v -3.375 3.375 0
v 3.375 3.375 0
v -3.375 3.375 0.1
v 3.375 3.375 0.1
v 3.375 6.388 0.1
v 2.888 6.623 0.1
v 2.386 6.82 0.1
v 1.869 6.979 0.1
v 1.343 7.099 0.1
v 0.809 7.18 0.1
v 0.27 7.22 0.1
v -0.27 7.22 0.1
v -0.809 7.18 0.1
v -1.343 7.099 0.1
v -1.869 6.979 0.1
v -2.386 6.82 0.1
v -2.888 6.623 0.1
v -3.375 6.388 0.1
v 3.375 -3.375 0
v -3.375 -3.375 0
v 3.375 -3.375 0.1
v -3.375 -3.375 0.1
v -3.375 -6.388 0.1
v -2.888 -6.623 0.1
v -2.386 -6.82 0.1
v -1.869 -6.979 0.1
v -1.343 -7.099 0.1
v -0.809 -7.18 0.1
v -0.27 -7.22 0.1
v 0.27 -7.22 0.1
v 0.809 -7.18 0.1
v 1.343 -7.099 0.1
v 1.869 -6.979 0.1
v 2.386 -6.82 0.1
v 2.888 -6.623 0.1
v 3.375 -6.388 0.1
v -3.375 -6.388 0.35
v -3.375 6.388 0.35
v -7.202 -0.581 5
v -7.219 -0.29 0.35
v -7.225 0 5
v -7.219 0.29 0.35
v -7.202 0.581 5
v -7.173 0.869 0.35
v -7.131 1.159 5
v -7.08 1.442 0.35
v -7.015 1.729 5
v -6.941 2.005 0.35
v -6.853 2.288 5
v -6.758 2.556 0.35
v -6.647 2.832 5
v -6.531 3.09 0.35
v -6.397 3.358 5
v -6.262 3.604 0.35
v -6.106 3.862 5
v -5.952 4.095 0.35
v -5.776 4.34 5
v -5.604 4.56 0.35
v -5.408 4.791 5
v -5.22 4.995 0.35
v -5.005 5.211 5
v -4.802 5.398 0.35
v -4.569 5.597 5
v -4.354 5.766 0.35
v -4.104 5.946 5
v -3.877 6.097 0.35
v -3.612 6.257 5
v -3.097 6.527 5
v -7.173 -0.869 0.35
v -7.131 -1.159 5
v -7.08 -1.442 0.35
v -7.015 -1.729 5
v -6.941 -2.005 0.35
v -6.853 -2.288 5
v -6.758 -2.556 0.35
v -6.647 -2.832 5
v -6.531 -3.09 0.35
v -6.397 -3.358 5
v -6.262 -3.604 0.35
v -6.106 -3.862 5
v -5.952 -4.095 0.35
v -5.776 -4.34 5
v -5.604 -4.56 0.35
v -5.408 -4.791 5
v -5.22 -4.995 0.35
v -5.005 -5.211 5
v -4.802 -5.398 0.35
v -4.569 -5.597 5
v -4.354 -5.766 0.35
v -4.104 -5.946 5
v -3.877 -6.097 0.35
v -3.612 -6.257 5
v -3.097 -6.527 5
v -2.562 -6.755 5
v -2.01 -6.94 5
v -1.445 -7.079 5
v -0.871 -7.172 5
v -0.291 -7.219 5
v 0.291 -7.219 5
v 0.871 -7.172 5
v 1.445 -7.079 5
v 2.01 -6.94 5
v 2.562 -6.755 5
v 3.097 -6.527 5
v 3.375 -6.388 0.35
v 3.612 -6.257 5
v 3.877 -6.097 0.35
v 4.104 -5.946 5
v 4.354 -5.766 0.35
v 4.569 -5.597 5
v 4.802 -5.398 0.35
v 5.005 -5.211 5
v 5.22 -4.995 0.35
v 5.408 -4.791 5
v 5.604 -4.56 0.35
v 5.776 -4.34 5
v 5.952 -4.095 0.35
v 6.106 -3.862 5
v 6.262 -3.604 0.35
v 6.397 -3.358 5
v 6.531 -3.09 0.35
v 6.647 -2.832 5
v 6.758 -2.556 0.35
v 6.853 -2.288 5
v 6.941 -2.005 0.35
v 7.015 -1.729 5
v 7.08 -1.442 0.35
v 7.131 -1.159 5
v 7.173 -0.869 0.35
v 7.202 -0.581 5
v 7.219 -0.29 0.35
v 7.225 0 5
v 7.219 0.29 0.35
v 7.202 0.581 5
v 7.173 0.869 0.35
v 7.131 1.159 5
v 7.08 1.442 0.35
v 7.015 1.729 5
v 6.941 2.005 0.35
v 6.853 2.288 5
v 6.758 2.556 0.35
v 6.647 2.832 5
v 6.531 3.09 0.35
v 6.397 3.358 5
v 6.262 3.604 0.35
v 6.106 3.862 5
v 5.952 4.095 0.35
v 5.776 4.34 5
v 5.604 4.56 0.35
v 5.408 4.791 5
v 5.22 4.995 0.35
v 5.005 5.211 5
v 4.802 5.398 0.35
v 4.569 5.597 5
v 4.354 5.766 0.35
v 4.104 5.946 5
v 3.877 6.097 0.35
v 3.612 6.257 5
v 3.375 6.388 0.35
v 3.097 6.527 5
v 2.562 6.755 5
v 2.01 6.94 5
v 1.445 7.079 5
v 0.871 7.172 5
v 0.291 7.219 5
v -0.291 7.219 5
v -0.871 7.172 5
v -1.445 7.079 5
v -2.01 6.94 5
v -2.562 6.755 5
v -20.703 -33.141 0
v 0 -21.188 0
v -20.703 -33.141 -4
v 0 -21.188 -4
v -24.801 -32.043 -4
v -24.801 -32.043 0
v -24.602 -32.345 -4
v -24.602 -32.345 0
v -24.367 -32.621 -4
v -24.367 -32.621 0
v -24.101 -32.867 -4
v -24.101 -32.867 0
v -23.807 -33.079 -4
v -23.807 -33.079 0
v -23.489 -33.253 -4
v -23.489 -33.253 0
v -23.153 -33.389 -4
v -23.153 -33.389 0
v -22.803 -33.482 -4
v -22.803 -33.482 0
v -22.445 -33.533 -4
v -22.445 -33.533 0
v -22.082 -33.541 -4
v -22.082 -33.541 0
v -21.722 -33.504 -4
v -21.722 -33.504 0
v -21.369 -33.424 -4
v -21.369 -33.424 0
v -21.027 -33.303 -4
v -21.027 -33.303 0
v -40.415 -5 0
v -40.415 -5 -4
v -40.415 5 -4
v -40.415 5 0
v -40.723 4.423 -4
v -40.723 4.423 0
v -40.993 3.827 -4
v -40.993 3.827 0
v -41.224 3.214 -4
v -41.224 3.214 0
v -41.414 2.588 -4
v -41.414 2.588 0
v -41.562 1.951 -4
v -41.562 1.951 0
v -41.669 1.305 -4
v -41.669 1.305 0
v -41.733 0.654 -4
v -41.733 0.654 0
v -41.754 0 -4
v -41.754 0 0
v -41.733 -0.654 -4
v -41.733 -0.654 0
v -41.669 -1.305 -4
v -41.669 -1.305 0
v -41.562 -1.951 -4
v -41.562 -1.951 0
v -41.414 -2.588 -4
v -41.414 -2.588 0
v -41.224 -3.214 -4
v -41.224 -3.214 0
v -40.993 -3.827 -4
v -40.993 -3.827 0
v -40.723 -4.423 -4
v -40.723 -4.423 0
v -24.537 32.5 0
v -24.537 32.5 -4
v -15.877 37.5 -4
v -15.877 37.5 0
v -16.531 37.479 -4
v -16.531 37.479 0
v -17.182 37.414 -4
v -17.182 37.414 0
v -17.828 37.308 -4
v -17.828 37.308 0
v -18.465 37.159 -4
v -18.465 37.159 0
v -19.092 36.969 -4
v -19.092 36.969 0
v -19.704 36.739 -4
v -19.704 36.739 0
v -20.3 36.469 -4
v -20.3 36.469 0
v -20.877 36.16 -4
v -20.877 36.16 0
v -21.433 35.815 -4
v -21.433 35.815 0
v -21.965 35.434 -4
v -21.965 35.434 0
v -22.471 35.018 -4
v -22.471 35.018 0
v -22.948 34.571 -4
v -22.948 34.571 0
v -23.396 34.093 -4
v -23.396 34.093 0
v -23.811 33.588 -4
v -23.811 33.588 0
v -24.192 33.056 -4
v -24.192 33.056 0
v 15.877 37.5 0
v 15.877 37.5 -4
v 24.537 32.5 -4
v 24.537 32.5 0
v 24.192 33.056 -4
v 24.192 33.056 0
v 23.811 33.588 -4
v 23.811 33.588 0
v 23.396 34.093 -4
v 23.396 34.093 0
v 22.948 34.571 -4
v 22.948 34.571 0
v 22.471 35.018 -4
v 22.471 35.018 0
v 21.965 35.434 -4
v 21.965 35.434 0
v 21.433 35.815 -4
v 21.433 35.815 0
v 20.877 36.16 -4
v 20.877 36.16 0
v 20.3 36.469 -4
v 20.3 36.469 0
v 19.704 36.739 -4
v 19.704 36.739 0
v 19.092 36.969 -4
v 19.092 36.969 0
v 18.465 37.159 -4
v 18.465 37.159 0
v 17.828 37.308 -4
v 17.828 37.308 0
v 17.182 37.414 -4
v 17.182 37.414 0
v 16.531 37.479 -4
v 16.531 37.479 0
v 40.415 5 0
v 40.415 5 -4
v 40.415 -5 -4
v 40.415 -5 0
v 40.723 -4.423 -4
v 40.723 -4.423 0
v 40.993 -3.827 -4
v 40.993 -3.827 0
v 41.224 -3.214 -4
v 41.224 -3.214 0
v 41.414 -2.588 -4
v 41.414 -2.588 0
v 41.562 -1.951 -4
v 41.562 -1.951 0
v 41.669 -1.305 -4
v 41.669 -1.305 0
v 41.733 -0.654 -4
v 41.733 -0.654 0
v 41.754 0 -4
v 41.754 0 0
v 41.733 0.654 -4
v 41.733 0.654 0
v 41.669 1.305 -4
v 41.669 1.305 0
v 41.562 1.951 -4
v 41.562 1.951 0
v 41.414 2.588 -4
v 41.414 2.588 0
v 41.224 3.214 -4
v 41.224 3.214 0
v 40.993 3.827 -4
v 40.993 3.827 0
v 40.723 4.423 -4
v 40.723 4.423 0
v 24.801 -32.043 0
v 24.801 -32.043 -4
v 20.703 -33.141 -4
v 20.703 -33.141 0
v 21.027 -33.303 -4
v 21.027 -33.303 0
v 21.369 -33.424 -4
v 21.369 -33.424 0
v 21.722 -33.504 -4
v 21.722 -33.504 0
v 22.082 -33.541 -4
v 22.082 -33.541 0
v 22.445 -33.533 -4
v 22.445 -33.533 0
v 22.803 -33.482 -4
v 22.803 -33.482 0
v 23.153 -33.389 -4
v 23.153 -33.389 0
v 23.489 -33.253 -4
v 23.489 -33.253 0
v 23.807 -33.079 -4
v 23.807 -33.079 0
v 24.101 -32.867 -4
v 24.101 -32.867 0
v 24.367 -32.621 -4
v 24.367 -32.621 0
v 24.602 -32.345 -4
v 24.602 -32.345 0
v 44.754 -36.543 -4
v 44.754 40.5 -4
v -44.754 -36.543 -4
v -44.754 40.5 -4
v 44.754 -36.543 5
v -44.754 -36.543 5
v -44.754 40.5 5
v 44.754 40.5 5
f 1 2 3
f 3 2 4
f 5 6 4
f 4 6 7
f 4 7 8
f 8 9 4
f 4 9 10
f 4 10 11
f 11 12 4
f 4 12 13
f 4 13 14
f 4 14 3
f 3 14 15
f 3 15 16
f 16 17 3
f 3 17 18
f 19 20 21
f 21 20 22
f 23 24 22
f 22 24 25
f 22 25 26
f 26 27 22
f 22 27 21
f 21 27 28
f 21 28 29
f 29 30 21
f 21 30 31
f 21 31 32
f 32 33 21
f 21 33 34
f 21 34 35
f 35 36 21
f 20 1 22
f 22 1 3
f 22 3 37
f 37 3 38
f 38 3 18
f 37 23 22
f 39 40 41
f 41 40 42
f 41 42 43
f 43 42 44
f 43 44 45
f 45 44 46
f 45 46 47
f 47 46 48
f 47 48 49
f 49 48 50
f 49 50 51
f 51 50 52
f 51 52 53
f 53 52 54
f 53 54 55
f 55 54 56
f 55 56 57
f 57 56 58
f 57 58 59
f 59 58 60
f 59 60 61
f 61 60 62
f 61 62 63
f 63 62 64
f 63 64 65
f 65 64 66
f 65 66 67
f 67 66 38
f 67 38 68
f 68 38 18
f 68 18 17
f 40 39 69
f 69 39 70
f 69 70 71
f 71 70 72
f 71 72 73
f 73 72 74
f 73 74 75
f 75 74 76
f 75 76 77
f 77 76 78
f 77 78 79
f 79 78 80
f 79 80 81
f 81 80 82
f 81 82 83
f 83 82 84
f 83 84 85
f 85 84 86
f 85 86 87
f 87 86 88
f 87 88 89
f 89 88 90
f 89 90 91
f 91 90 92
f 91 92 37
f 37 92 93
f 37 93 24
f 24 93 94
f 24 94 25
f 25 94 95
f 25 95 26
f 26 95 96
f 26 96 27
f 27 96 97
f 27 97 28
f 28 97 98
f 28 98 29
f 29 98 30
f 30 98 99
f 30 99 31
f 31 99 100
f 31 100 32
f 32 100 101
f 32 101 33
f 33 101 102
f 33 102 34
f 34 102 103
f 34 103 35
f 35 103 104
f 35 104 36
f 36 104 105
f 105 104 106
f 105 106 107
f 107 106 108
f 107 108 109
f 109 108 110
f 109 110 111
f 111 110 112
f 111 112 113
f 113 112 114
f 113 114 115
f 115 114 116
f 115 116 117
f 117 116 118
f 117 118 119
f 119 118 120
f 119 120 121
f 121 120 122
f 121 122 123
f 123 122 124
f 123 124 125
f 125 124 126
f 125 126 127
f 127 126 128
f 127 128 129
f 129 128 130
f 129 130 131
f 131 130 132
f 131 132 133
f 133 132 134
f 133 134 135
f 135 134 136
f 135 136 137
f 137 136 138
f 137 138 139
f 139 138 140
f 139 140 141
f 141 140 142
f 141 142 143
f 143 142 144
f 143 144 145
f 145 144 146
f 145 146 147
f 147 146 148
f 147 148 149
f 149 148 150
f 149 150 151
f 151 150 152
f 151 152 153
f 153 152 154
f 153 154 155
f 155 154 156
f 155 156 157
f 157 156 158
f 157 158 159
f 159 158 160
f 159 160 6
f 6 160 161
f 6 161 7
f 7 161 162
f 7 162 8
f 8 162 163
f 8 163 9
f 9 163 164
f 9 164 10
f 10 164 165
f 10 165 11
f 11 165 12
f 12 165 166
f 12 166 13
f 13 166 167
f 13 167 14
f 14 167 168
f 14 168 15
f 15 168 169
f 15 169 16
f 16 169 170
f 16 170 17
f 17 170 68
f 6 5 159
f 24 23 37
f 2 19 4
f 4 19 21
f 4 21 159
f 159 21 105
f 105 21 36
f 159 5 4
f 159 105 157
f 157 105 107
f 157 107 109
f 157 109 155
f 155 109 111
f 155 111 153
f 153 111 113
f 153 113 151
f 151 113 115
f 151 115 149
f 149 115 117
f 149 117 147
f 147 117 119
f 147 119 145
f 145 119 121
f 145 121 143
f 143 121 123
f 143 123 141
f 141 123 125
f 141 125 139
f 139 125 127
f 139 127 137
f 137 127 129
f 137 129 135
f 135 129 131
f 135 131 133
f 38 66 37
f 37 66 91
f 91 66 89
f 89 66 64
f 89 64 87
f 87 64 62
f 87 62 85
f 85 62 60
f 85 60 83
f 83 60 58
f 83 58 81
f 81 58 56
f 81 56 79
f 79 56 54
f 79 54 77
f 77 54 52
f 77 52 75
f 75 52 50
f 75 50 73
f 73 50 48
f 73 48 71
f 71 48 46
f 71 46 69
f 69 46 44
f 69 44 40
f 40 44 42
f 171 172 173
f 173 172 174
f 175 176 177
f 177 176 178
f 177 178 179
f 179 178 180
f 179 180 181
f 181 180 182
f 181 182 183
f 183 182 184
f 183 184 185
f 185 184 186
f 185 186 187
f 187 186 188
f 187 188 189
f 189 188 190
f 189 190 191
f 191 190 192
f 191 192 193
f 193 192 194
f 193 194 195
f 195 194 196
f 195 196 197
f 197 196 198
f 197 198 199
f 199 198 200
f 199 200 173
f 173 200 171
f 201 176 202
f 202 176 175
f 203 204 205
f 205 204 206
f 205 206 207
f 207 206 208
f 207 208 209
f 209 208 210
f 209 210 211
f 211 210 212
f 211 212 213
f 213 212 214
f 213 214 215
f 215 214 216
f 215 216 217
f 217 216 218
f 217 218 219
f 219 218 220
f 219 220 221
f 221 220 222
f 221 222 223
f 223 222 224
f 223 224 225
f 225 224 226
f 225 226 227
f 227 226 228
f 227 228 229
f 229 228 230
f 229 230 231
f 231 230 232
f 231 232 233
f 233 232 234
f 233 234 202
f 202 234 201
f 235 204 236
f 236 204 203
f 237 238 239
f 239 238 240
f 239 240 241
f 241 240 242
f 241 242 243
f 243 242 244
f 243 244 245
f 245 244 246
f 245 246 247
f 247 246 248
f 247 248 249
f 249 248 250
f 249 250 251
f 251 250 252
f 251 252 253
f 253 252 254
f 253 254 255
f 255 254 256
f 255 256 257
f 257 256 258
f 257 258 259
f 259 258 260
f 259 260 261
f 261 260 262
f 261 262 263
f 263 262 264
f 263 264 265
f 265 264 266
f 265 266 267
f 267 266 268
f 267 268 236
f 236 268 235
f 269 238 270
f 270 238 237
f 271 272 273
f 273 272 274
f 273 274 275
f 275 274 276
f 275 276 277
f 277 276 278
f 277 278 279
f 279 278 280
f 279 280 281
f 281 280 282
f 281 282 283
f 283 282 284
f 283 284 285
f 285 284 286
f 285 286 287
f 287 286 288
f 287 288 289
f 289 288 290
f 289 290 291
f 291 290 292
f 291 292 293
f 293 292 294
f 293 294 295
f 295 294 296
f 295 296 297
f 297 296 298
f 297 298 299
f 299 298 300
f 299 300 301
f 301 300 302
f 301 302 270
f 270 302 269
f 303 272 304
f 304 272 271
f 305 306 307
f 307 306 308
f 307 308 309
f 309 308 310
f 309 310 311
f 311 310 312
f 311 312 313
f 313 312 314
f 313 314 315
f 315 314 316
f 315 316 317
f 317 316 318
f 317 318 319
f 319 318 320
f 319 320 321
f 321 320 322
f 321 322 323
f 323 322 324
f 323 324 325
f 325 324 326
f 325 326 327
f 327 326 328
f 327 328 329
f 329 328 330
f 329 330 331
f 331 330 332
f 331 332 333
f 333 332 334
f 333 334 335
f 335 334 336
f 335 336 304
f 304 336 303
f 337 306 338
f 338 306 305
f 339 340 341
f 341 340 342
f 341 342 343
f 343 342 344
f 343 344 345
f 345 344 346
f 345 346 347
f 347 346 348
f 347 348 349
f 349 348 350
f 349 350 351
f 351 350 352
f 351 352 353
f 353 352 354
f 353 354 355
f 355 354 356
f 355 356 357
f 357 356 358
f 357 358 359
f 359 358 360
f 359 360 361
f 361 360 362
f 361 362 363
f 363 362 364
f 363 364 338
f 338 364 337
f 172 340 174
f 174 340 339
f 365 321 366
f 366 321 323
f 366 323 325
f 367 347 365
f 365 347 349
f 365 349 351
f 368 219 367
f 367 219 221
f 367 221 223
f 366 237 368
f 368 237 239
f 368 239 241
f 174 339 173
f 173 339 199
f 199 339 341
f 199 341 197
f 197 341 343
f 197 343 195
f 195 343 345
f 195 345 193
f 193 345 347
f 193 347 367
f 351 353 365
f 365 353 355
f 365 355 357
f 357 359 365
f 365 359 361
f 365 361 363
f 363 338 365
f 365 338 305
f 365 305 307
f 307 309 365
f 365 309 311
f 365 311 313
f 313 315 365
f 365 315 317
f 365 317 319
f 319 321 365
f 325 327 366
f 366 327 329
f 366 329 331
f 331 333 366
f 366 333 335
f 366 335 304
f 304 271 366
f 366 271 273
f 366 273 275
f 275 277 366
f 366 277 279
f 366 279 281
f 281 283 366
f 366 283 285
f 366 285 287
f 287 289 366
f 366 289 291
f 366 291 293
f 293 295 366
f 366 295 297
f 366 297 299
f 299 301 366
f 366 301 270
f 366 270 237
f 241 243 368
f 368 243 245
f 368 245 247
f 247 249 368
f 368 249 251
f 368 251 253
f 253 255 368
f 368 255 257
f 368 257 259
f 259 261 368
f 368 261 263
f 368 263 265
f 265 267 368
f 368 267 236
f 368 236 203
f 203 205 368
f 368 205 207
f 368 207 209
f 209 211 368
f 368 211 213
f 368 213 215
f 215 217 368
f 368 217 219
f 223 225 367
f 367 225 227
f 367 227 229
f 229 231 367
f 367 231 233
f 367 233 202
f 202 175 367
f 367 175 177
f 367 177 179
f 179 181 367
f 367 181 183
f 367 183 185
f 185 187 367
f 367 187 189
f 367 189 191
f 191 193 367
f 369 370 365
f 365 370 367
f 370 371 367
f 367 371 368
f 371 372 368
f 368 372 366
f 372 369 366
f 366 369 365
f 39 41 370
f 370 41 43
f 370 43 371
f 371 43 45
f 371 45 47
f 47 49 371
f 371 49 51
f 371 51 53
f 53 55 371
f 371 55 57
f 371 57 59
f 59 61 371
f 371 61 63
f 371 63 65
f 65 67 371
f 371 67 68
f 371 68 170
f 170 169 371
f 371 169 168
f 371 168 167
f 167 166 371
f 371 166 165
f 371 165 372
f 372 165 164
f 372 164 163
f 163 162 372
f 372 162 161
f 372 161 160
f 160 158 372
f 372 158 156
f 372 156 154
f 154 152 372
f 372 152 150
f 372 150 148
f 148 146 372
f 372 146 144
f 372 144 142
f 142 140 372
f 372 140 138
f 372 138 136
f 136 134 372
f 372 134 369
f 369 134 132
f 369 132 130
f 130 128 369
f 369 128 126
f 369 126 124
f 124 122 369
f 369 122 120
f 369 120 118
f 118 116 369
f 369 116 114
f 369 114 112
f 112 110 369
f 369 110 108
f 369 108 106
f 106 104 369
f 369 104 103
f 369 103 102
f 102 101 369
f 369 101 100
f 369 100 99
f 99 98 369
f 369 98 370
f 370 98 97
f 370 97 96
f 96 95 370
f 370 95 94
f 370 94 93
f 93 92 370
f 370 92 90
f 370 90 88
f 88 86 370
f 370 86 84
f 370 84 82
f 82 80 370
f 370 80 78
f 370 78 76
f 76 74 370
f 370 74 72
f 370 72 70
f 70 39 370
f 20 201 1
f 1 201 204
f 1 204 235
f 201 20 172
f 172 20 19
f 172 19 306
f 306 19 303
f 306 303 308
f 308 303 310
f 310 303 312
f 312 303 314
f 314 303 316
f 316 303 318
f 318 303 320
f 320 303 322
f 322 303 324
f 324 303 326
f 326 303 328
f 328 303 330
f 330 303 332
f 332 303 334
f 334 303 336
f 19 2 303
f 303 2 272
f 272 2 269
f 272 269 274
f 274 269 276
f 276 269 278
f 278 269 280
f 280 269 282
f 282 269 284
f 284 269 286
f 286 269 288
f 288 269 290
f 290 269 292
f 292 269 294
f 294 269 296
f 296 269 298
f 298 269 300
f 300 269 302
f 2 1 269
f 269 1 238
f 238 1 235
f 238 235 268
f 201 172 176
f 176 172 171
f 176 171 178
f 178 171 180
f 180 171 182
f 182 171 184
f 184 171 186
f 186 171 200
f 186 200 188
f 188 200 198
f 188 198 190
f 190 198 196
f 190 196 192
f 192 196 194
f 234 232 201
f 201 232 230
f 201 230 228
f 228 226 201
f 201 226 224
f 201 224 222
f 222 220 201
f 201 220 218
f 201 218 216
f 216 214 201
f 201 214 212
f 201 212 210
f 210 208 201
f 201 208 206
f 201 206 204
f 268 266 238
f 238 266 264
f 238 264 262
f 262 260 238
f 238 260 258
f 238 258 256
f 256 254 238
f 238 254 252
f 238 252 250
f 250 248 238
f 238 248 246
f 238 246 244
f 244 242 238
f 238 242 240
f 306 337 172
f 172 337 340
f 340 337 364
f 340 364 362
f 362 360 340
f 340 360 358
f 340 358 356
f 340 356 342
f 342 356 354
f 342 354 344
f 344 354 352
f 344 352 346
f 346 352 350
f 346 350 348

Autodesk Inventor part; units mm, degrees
ref_plane "YZ Plane" through (0, 0, 0) normal (1, 0, 0) x (0, 1, 0)
ref_plane "XZ Plane" through (0, 0, 0) normal (0, 1, 0) x (-1, 0, 0)
ref_plane "XY Plane" through (0, 0, 0) normal (0, 0, 1) x (1, 0, 0)
sketch "Sketch1" plane through (0, 0, 0) normal (0, 0, 1) x (1, 0, 0)
  line L0 (-27.3013, -27.7128) -> (-40.4145, -5)
  line L1 (-40.4145, 5) -> (-24.5374, 32.5)
  line L2 (-15.8771, 37.5) -> (15.8771, 37.5)
  line L3 (24.5374, 32.5) -> (40.4145, 5)
  line L4 (40.4145, -5) -> (27.3013, -27.7128)
  line L5 (21.6506, -37.5) -> (-21.6506, -37.5)
  line L6 (16.3731, -30.641) -> (0, -21.188)
  line L7 (0, -21.188) -> (-16.3731, -30.641)
  circle A0 centre (0, 0) radius 4.75
  line L8 (43.3013, 0) -> (41.7543, 0)
  arc A1 (20.7032, -33.141) -> (24.8013, -32.0429) centre (22.2032, -30.5429) ccw
  arc A2 (-24.8013, -32.0429) -> (-20.7032, -33.141) centre (-22.2032, -30.5429) ccw
  arc A3 (40.4145, -5) -> (40.4145, 5) centre (31.7543, 0) ccw
  arc A4 (24.5374, 32.5) -> (15.8771, 37.5) centre (15.8771, 27.5) ccw
  arc A5 (-15.8771, 37.5) -> (-24.5374, 32.5) centre (-15.8771, 27.5) ccw
  arc A6 (-40.4145, 5) -> (-40.4145, -5) centre (-31.7543, 0) ccw
  circle A7 centre (0, 0) radius 3.375
  line L9 (0, -21.188) -> (0, -37.5)
  circle A8 centre (0, 0) radius 7.225
  line L10 (0, 0) -> (-7.225, 0)
  line L11 (-9.225, 0) -> (-9.225, -16.1218)
  line L12 (-19.2032, -35.7391) -> (0, -24.6521)
  line L13 (0, -24.6521) -> (19.2032, -35.7391)
  arc A9 (19.2032, -35.7391) -> (27.3993, -33.5429) centre (22.2032, -30.5429) ccw
  line L14 (27.3993, -33.5429) -> (43.0126, -6.5)
  arc A10 (43.0126, -6.5) -> (43.0126, 6.5) centre (31.7543, 0) ccw
  line L15 (43.0126, 6.5) -> (27.1355, 34)
  arc A11 (27.1355, 34) -> (15.8771, 40.5) centre (15.8771, 27.5) ccw
  line L16 (15.8771, 40.5) -> (-15.8771, 40.5)
  arc A12 (-15.8771, 40.5) -> (-27.1355, 34) centre (-15.8771, 27.5) ccw
  line L17 (-27.1355, 34) -> (-43.0126, 6.5)
  arc A13 (-43.0126, 6.5) -> (-43.0126, -6.5) centre (-31.7543, 0) ccw
  line L18 (-43.0126, -6.5) -> (-27.3993, -33.5429)
  arc A14 (-27.3993, -33.5429) -> (-19.2032, -35.7391) centre (-22.2032, -30.5429) ccw
  line L19 (-15.225, -22.1218) -> (-16.1451, -22.1218)
  line L20 (-22.1451, -16.1218) -> (-22.1451, 22.5)
  line L21 (-14.1451, 30.5) -> (0, 30.5)
  arc A15 (-14.1451, 30.5) -> (-22.1451, 22.5) centre (-14.1451, 22.5) ccw
  arc A16 (-22.1451, -16.1218) -> (-16.1451, -22.1218) centre (-16.1451, -16.1218) ccw
  arc A17 (-15.225, -22.1218) -> (-9.225, -16.1218) centre (-15.225, -16.1218) ccw
  line L22 (0, 0) -> (0, 30.5)
  line L23 (9.225, 0) -> (9.225, -16.1218)
  arc A18 (9.225, -16.1218) -> (15.225, -22.1218) centre (15.225, -16.1218) ccw
  line L24 (15.225, -22.1218) -> (16.1451, -22.1218)
  arc A19 (16.1451, -22.1218) -> (22.1451, -16.1218) centre (16.1451, -16.1218) ccw
  line L25 (22.1451, -16.1218) -> (22.1451, 22.5)
  arc A20 (22.1451, 22.5) -> (14.1451, 30.5) centre (14.1451, 22.5) ccw
  line L26 (14.1451, 30.5) -> (0, 30.5)
  circle A21 centre (0, 0) radius 9.225
  line L27 (-22.2032, -30.5429) -> (-24.8013, -32.0429)
  line L28 (-22.2032, -30.5429) -> (-20.7032, -33.141)
  line L29 (22.2032, -30.5429) -> (20.7032, -33.141)
  line L30 (22.2032, -30.5429) -> (24.8013, -32.0429)
  arc A22 (-25.8013, -30.3109) -> (-28.3993, -31.8109) centre (-27.1003, -31.0609) ccw
  arc A23 (-17.4711, -34.7391) -> (-18.9711, -32.141) centre (-18.2211, -33.4401) ccw
  arc A24 (28.3993, -31.8109) -> (25.8013, -30.3109) centre (27.1003, -31.0609) ccw
  arc A25 (18.9711, -32.141) -> (17.4711, -34.7391) centre (18.2211, -33.4401) ccw
  line L31 (-14.1451, 30.5) -> (-25.6921, 30.5)
  line L32 (14.1451, 30.5) -> (25.6921, 30.5)
  line L33 (-16.1451, -22.1218) -> (-30.5293, -22.1218)
  line L34 (16.1451, -22.1218) -> (30.5293, -22.1218)
  line L35 (24.8013, -32.0429) -> (40.4145, -5)
  arc A26 (40.4145, -5) -> (40.4145, 5) centre (31.7543, 0) ccw
  line L36 (40.4145, 5) -> (24.5374, 32.5)
  arc A27 (24.5374, 32.5) -> (15.8771, 37.5) centre (15.8771, 27.5) ccw
  line L37 (15.8771, 37.5) -> (-15.8771, 37.5)
  arc A28 (-15.8771, 37.5) -> (-24.5374, 32.5) centre (-15.8771, 27.5) ccw
  line L38 (-24.5374, 32.5) -> (-40.4145, 5)
  arc A29 (-40.4145, 5) -> (-40.4145, -5) centre (-31.7543, 0) ccw
  line L39 (-40.4145, -5) -> (-24.8013, -32.0429)
  arc A30 (20.7032, -33.141) -> (24.8013, -32.0429) centre (22.2032, -30.5429) ccw
  line L40 (20.7032, -33.141) -> (0, -21.188)
  line L41 (0, -21.188) -> (-20.7032, -33.141)
  arc A31 (-24.8013, -32.0429) -> (-20.7032, -33.141) centre (-22.2032, -30.5429) ccw
  line L42 (27.8503, -29.7619) -> (27.8503, -29.7619)
  line L43 (16.9221, -32.6901) -> (16.9221, -32.6901)
  line L44 (-16.9221, -32.6901) -> (-16.9221, -32.6901)
  line L45 (-27.8503, -29.7619) -> (-27.8503, -29.7619)
  arc A32 (27.3013, -27.7128) -> (27.8503, -29.7619) centre (28.6003, -28.4628) ccw
  arc A33 (16.9221, -32.6901) -> (16.3731, -30.641) centre (15.6231, -31.9401) ccw
  arc A34 (-16.3731, -30.641) -> (-16.9221, -32.6901) centre (-15.6231, -31.9401) ccw
  arc A35 (-27.8503, -29.7619) -> (-27.3013, -27.7128) centre (-28.6003, -28.4628) ccw
  line L46 (-24.5374, 32.5) -> (-21.6506, 37.5)
  line L47 (-15.8771, 37.5) -> (-21.6506, 37.5)
  line L48 (15.8771, 37.5) -> (21.6506, 37.5)
  line L49 (24.5374, 32.5) -> (21.6506, 37.5)
  line L50 (30.1451, -22.7872) -> (30.1451, 22.7872)
  line L51 (-30.1451, -22.7872) -> (-30.1451, 22.7872)
  line L52 (-44.7543, 40.5) -> (44.7543, 40.5)
  line L53 (44.7543, 40.5) -> (44.7543, -36.5429)
  line L54 (44.7543, -36.5429) -> (-44.7543, -36.5429)
  line L55 (-44.7543, -36.5429) -> (-44.7543, 40.5)
  line L56 (-3.375, 6.3883) -> (-3.375, -6.3883)
  line L57 (3.375, 6.3883) -> (3.375, -6.3883)
  line L58 (-6.3883, 3.375) -> (6.3883, 3.375)
  line L59 (-6.3883, -3.375) -> (6.3883, -3.375)
  point P0 (-43.3013, 0)
  point P1 (36.8061, -2.25)
  point P2 (6.0982, -2.25)
  point P3 (19.9965, -30.1349)
  point P4 (4.9976, -4.1562)
  point P5 (-6.0982, 2.25)
  point P6 (-36.8061, 2.25)
  point P7 (-36.8061, -2.25)
  point P8 (-6.0982, -2.25)
  point P9 (-20.3516, 30.75)
  point P10 (-4.9976, 4.1562)
  point P11 (-1.1005, 6.4062)
  point P12 (-16.4545, 33)
  point P13 (16.4545, 33)
  point P14 (1.1005, 6.4062)
  point P15 (4.9976, 4.1562)
  point P16 (20.3516, 30.75)
  point P17 (36.8061, 2.25)
  point P18 (6.0982, 2.25)
  point P19 (1.1005, -6.4062)
  point P20 (12.2023, -25.6349)
  point P21 (-4.9976, -4.1562)
  point P22 (-19.9965, -30.1349)
  point P23 (-12.2023, -25.6349)
  point P24 (-1.1005, -6.4062)
  point P25 (-9.225, -26.5141)
  point P26 (7, 0)
  point P27 (0, 7.225)
  point P28 (17.4711, -34.7391)
  point P29 (28.3993, -31.8109)
  point P30 (25.8013, -30.3109)
  point P31 (24.8013, -32.0429)
  point P32 (20.7032, -33.141)
  point P33 (18.9711, -32.141)
  point P34 (-20.7032, -33.141)
  point P35 (-24.8013, -32.0429)
  point P36 (30.1451, -22.1218)
  point P37 (30.1451, 22.7872)
  point P38 (-30.1451, 22.7872)
  point P39 (-30.1451, -22.1218)
  point P40 (-27.8503, -29.7619)
  point P41 (-16.9221, -32.6901)
  point P42 (27.8503, -29.7619)
  point P43 (15.8771, 40.5)
  point P44 (27.3013, -27.7128)
  point P45 (3.375, 3.375)
  point P46 (-3.375, 3.375)
  point P47 (-3.375, -3.375)
  point P48 (3.375, -3.375)
  dimension "d11" = 14.45
  dimension "d0" = 9.5
  dimension "d1" = 120
  dimension "d2" = 75
  dimension "d3" = 40
  dimension "d4" = 3
  dimension "d5" = 10
  dimension "d6" = 6.75
  dimension "d7" = 3
  dimension "d8" = 8
  dimension "d9" = 6
  dimension "d10" = 6
  dimension "d12" = 2
  dimension "d13" = 2
  dimension "d14" = 2
  dimension "d15" = 6
  dimension "d16" = 0
  dimension "d17" = 0
  dimension "d18" = 0
  dimension "d19" = 0
  dimension "d20" = 0
  dimension "d21" = 1.5
  dimension "d22" = 7
  dimension "d23" = 8
extrude "Extrusion1" add sketch "Sketch1" along normal blind 5 contours A35 A22 L18 A13 L17 A12 L16 A11 L15 A10 L14 A24 A32 L4 A3 L3 L49 L48 L2 L47 L46 L1 A6 L0 | L0 L51 L33 L19 A17 L11 A21 L23 A18 L24 L34 L50 L4 L35 L30 L29 L40 L6 L7 L41 L28 L27 L39 | L39 A22 A35 | L0 L33 L51 | L39 A2 L41 A23 L12 A14 L18 A22 | L0 A6 L1 L51 L33 | L51 L1 L31 A15 L20 A16 L33 | L27 L28 A2 | L18 A14 L54 L55 A13 | A16 L20 A15 L21 L22 A21 L11 A17 L19 | L1 A5 L2 A4 L3 L32 L26 L21 L31 | L41 A34 A23 | L55 L52 A12 L17 A13 | A14 L12 L9 L54 | L46 L47 A5 | A34 L7 L9 L12 A23 | L9 L13 A9 L54 | A8 L57 L58 A0 L22 | L22 A0 L58 L56 A8 | A21 | L26 A20 L25 A19 L24 A18 L23 A21 L22 | L6 A33 A25 L13 L9 | A9 L13 A25 L40 A1 L35 A24 L14 | A9 L14 A10 L53 L54 | L48 L49 A4 | L32 L3 L50 L34 A19 L25 A20 | L40 A25 A33 | L52 L53 A10 L15 A11 | A8 L58 L57 | L56 L58 A8 | L22 L58 A0 | A0 L58 L22 | L3 A3 L4 L34 L50 | L29 L30 A1 | A24 L35 A32 | A8 L59 L57 A0 L58 | L57 A0 L58 | L58 L56 A0 L10 A8 | L58 A0 L56 | A0 L57 A7 L58 | L58 A7 L56 A0 | L22 L10 A7 | A7 L10 L22 | L34 L4 L50 | A0 L57 | L10 A0 L56 L59 A8 | L56 L10 A0 | L57 A0 L59 A7 | L56 A0 L10 | A7 L59 A0 L56 | A8 L57 L59 | L59 L56 A8 | L59 A0 | L57 L59 A0 | A0 L59 L56 | A8 L56 L59 A0 L57
extrude "Extrusion2" add sketch "Sketch1" against normal blind 4 contours A35 A22 L18 A13 L17 A12 L16 A11 L15 A10 L14 A24 A32 L4 A3 L3 L49 L48 L2 L47 L46 L1 A6 L0 | L39 A22 A35 | L39 A2 L41 A23 L12 A14 L18 A22 | L18 A14 L54 L55 A13 | L41 A34 A23 | L55 L52 A12 L17 A13 | A14 L12 L9 L54 | L46 L47 A5 | A34 L7 L9 L12 A23 | L9 L13 A9 L54 | L6 A33 A25 L13 L9 | A9 L13 A25 L40 A1 L35 A24 L14 | A9 L14 A10 L53 L54 | L48 L49 A4 | L40 A25 A33 | L52 L53 A10 L15 A11 | A24 L35 A32
extrude "Extrusion3" cut sketch "Sketch1" along normal through all contours A8 L57 L58 A0 L22 | L22 A0 L58 L56 A8 | A8 L58 L57 | L56 L58 A8 | L22 L58 A0 | A0 L58 L22 | A8 L59 L57 A0 L58 | L57 A0 L58 | L58 L56 A0 L10 A8 | L58 A0 L56 | A0 L57 A7 L58 | L58 A7 L56 A0 | L22 L10 A7 | A7 L10 L22 | A0 L57 | L10 A0 L56 L59 A8 | L56 L10 A0 | L57 A0 L59 A7 | L56 A0 L10 | A7 L59 A0 L56 | A8 L57 L59 | L59 L56 A8 | L59 A0 | L57 L59 A0 | A0 L59 L56 | A8 L56 L59 A0 L57
extrude "Extrusion5" add sketch "Sketch1" along normal blind 0.35 contours A8 L58 L57 | L56 L58 A8 | A8 L59 L57 A0 L58 | L58 L56 A0 L10 A8 | A0 L57 | L10 A0 L56 L59 A8 | L56 L10 A0 | L56 A0 L10 | A8 L57 L59 | L59 L56 A8
extrude "Extrusion6" add sketch "Sketch1" along normal blind 0.1 contours A8 L57 L58 A0 L22 | L22 A0 L58 L56 A8 | L22 L58 A0 | A0 L58 L22 | L59 A0 | A8 L56 L59 A0 L57
properties part number "CalibrationBlockV3"
